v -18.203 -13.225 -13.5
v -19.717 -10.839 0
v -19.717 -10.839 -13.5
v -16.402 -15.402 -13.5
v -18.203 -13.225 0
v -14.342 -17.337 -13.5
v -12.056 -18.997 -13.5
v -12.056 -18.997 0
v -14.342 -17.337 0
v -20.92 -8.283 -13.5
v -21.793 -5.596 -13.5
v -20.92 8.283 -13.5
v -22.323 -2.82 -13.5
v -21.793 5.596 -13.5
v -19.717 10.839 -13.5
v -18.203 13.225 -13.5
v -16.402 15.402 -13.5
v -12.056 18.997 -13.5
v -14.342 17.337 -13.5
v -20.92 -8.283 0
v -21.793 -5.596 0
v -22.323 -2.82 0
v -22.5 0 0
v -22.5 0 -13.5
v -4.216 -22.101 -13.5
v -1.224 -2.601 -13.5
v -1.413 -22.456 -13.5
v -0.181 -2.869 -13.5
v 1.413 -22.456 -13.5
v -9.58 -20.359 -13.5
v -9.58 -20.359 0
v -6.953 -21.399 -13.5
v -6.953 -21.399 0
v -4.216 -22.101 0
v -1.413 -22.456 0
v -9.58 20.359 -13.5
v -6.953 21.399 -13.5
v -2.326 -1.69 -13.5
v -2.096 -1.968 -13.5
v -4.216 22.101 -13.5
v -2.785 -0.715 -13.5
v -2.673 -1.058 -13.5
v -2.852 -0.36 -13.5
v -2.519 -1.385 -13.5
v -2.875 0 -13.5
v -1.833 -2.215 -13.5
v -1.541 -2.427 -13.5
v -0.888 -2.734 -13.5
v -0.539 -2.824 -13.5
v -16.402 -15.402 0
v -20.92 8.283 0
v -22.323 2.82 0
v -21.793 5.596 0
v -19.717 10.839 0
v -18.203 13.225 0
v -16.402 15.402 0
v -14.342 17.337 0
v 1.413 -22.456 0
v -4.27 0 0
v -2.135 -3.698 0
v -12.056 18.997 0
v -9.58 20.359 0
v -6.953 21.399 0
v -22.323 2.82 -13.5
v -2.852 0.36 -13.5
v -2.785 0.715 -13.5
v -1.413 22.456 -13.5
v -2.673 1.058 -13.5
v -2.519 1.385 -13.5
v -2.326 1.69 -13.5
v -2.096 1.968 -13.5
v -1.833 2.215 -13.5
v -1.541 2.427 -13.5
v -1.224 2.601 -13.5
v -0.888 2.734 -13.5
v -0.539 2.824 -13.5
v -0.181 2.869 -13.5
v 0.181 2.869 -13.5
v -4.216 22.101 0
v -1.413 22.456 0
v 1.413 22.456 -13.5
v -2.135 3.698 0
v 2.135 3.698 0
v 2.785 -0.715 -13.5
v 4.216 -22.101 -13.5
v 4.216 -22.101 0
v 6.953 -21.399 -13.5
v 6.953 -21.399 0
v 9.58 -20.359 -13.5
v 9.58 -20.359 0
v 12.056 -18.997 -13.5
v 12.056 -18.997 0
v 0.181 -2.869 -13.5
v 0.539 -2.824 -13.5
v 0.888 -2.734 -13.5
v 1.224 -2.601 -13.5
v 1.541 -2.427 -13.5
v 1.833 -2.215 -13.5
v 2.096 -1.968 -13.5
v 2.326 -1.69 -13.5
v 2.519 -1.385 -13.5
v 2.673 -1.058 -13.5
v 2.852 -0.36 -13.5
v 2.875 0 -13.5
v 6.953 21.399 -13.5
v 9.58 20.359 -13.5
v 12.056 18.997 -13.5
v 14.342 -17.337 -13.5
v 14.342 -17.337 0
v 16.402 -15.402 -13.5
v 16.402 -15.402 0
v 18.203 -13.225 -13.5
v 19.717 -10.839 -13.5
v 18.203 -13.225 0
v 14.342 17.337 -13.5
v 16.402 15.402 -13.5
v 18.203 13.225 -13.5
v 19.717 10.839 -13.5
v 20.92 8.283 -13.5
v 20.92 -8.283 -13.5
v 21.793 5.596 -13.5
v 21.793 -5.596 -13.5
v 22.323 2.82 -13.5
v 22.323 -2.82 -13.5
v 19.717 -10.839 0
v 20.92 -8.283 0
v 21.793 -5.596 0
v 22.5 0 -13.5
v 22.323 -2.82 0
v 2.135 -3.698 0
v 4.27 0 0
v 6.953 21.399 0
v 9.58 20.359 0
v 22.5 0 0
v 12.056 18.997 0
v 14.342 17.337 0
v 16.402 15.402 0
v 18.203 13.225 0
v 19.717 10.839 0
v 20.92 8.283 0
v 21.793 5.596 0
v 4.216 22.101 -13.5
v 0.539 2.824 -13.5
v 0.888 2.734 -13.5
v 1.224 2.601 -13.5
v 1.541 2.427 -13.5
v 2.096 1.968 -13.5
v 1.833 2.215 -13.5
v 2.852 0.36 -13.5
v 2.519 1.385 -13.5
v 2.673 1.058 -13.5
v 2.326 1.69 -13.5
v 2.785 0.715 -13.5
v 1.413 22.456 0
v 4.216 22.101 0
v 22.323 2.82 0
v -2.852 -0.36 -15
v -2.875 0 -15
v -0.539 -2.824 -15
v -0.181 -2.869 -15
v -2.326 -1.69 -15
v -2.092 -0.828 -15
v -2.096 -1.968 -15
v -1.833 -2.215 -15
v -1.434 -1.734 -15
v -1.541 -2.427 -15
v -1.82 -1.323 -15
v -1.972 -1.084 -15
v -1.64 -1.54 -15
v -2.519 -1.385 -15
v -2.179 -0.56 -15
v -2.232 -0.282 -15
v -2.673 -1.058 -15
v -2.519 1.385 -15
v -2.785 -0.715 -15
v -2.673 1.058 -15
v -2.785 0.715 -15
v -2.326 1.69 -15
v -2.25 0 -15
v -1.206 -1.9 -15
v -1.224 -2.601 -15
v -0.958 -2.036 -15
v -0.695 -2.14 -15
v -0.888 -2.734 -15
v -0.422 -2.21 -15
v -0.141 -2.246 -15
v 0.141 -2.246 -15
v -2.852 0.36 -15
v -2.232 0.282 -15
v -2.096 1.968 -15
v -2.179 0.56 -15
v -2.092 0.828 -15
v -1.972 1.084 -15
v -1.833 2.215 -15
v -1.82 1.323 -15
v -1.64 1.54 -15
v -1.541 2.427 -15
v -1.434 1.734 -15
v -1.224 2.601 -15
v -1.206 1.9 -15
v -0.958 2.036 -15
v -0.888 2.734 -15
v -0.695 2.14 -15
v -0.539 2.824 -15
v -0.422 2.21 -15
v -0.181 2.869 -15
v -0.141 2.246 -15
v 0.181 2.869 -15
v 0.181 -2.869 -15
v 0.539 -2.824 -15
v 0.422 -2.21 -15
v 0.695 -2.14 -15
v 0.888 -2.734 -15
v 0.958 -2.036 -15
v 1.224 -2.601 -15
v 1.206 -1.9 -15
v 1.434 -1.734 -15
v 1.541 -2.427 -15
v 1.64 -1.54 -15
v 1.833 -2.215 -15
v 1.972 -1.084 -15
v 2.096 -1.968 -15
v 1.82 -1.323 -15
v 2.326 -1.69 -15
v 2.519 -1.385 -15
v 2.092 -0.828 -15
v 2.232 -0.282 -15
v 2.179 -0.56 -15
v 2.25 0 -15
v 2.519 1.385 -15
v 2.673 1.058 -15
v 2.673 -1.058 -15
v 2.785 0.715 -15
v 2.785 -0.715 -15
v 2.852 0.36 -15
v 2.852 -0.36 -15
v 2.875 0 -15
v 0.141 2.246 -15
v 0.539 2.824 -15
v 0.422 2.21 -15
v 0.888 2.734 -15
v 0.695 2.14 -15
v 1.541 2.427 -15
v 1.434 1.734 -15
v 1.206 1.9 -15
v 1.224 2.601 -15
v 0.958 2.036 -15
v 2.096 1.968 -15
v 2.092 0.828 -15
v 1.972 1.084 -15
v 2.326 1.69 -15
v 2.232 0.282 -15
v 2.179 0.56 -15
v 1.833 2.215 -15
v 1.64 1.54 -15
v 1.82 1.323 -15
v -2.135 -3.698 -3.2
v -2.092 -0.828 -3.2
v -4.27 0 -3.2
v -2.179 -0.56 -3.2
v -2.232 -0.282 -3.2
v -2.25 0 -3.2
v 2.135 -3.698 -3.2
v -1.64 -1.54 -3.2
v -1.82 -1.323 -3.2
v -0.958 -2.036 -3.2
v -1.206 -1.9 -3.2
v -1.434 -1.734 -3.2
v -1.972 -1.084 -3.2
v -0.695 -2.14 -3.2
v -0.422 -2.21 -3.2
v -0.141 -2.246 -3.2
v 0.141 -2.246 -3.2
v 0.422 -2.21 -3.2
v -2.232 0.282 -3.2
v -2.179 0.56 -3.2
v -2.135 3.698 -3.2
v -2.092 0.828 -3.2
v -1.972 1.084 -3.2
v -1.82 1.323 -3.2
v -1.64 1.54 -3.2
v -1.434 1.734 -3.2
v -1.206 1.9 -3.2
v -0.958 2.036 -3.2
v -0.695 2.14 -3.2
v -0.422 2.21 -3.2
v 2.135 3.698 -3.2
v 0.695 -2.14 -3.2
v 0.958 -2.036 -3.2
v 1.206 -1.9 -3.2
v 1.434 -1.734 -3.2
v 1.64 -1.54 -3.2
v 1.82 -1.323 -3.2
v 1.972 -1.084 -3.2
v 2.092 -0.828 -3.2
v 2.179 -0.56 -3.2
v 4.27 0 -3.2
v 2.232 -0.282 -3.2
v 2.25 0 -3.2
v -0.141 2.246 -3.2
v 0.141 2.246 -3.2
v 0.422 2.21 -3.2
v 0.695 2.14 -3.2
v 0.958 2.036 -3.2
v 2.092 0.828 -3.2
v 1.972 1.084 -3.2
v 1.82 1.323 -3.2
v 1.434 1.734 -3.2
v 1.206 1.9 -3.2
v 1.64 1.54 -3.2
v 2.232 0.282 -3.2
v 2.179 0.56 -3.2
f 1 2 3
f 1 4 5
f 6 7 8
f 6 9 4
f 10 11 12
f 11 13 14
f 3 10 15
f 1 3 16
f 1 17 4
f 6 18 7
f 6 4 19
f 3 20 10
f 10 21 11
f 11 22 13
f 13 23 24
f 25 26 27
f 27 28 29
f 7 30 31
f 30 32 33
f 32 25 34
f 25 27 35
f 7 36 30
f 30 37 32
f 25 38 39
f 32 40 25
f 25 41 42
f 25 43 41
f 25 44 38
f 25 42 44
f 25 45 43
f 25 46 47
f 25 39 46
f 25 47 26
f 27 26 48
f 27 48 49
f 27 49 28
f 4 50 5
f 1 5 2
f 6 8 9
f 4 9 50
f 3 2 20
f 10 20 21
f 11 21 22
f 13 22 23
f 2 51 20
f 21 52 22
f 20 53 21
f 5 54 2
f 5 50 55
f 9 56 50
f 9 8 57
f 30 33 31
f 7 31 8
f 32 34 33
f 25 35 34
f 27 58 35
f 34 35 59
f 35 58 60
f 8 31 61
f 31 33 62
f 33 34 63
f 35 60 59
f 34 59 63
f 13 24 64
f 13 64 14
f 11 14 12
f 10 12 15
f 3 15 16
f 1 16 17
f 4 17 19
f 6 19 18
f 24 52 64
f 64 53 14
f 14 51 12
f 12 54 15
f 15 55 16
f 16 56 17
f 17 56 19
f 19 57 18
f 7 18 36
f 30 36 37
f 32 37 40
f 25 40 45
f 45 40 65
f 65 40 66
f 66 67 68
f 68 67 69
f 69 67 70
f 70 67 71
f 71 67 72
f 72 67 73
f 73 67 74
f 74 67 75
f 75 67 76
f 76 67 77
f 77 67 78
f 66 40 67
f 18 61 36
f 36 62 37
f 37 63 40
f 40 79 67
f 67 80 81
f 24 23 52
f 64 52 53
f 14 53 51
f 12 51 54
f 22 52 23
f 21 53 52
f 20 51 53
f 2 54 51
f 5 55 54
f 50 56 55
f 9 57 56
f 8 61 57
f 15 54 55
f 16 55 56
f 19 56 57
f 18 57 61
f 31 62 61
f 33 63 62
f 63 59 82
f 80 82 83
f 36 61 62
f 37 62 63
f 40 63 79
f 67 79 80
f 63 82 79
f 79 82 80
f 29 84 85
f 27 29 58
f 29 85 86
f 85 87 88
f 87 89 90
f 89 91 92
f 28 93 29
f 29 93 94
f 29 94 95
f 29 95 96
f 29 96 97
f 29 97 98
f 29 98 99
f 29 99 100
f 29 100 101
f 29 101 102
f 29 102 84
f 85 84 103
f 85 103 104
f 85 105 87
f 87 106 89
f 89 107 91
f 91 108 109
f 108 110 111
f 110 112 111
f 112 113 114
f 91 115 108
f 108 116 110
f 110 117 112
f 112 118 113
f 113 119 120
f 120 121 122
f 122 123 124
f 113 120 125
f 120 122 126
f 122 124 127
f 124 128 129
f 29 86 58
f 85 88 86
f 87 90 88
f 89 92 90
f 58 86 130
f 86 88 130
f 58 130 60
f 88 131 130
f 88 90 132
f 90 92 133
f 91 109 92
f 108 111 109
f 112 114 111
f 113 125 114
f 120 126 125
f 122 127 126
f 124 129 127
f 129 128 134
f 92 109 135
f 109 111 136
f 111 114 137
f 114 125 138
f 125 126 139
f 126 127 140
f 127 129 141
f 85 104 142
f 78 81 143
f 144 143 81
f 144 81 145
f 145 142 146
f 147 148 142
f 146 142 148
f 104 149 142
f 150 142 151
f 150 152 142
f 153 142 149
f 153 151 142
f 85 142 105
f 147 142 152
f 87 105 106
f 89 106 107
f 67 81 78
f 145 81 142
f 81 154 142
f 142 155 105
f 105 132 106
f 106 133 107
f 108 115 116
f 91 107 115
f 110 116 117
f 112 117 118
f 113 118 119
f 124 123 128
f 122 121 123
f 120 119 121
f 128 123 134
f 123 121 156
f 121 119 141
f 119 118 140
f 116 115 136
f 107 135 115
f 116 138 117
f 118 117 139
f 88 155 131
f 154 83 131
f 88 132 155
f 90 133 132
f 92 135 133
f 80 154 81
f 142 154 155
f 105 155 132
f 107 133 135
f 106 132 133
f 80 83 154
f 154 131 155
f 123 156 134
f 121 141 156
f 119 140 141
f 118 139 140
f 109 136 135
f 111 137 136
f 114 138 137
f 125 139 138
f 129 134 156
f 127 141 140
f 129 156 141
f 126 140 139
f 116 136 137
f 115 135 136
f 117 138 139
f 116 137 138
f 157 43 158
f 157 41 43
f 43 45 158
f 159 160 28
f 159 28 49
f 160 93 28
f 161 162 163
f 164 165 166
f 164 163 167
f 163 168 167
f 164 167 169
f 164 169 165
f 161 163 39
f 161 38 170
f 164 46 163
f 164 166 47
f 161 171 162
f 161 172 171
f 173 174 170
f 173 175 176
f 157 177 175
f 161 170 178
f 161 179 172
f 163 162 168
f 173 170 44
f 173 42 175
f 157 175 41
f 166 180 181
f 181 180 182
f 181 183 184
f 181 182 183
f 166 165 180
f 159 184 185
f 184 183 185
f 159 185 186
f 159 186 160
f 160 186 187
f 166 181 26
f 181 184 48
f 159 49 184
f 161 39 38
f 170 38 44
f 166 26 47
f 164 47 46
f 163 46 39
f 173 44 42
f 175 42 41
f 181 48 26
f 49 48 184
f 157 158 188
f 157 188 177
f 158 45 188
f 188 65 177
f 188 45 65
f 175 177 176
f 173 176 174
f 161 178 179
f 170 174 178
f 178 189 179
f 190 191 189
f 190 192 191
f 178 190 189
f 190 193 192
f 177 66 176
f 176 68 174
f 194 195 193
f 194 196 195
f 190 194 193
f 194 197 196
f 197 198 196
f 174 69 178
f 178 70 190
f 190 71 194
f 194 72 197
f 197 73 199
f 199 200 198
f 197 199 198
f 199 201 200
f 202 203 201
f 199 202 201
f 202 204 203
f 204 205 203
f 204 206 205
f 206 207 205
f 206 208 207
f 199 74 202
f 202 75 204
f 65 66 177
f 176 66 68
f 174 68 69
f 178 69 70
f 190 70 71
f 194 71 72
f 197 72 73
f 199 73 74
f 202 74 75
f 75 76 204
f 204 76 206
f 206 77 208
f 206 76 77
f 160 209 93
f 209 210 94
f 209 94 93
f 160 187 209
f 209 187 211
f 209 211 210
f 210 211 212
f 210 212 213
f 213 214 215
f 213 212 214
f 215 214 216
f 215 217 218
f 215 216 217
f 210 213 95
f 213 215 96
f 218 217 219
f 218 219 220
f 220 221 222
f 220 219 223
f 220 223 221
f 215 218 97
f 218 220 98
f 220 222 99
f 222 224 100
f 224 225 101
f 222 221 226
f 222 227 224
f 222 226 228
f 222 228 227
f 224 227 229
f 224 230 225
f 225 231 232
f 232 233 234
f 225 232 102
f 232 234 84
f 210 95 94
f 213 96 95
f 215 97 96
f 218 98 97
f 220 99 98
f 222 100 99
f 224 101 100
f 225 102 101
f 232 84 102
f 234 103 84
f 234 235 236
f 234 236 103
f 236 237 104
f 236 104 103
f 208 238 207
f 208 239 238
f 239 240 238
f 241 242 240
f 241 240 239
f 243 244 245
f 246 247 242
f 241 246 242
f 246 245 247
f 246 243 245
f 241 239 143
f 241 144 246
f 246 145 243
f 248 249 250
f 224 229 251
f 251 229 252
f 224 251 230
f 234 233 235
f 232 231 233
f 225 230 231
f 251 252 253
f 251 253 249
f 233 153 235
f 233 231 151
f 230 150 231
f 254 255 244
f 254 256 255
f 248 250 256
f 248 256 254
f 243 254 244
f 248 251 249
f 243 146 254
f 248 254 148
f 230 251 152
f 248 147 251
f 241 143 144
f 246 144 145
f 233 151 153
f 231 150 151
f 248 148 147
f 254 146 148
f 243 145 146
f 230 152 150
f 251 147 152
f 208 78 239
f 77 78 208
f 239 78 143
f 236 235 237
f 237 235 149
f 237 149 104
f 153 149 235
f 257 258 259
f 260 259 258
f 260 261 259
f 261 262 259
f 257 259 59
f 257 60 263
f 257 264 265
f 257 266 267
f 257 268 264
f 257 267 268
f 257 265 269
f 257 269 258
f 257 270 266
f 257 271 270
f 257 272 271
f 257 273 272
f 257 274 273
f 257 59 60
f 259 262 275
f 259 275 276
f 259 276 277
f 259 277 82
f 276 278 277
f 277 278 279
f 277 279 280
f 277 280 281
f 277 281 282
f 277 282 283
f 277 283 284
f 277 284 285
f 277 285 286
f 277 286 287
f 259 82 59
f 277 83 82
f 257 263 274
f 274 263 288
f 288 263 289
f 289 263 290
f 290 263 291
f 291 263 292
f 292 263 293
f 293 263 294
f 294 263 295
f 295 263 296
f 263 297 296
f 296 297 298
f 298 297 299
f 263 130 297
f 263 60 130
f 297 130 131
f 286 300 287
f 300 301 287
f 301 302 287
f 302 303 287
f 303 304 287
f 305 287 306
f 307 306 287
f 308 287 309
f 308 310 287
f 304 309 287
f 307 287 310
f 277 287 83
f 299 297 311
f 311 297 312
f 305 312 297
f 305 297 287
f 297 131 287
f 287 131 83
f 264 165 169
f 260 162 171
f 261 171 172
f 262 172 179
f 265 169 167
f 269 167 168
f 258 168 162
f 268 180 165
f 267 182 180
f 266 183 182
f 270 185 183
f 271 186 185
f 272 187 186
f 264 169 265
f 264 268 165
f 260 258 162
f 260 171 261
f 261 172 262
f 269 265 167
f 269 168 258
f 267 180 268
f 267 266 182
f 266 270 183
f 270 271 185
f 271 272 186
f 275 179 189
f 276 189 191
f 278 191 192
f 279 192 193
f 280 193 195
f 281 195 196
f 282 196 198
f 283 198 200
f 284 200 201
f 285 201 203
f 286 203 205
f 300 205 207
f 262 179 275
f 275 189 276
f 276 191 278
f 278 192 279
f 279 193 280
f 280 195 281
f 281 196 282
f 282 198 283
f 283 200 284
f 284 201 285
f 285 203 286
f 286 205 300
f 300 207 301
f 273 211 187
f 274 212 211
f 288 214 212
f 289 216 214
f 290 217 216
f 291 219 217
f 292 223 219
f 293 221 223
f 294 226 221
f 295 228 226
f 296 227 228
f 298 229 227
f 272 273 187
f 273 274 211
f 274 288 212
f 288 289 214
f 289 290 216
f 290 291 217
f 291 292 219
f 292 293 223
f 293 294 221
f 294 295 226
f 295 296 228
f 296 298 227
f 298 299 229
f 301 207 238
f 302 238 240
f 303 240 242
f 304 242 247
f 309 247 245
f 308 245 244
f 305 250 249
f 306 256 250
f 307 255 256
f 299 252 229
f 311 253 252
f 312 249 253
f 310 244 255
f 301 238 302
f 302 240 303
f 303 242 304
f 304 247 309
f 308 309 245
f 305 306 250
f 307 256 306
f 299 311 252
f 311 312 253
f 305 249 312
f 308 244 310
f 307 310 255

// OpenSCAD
$fn = 50;


difference() {
	union() {
		translate(v = [0, 0, -13.5000000000]) {
			cylinder(h = 13.5000000000, r = 22.5000000000);
		}
		#translate(v = [0, 0, -15.0000000000]) {
			cylinder(h = 15, r = 2.8750000000);
		}
	}
	union() {
		translate(v = [0, 0, 0]) {
			rotate(a = [0, 0, 0]) {
				difference() {
					union() {
						translate(v = [0, 0, -3.2000000000]) {
							linear_extrude(height = 3.2000000000) {
								polygon(points = [[4.2698000000, 0.0000000000], [2.1349000000, 3.6977552691], [-2.1349000000, 3.6977552691], [-4.2698000000, 0.0000000000], [-2.1349000000, -3.6977552691], [2.1349000000, -3.6977552691]]);
							}
						}
					}
					union();
				}
			}
		}
		#translate(v = [0, 0, -100.0000000000]) {
			cylinder(h = 200, r = 2.2500000000);
		}
	}
}
